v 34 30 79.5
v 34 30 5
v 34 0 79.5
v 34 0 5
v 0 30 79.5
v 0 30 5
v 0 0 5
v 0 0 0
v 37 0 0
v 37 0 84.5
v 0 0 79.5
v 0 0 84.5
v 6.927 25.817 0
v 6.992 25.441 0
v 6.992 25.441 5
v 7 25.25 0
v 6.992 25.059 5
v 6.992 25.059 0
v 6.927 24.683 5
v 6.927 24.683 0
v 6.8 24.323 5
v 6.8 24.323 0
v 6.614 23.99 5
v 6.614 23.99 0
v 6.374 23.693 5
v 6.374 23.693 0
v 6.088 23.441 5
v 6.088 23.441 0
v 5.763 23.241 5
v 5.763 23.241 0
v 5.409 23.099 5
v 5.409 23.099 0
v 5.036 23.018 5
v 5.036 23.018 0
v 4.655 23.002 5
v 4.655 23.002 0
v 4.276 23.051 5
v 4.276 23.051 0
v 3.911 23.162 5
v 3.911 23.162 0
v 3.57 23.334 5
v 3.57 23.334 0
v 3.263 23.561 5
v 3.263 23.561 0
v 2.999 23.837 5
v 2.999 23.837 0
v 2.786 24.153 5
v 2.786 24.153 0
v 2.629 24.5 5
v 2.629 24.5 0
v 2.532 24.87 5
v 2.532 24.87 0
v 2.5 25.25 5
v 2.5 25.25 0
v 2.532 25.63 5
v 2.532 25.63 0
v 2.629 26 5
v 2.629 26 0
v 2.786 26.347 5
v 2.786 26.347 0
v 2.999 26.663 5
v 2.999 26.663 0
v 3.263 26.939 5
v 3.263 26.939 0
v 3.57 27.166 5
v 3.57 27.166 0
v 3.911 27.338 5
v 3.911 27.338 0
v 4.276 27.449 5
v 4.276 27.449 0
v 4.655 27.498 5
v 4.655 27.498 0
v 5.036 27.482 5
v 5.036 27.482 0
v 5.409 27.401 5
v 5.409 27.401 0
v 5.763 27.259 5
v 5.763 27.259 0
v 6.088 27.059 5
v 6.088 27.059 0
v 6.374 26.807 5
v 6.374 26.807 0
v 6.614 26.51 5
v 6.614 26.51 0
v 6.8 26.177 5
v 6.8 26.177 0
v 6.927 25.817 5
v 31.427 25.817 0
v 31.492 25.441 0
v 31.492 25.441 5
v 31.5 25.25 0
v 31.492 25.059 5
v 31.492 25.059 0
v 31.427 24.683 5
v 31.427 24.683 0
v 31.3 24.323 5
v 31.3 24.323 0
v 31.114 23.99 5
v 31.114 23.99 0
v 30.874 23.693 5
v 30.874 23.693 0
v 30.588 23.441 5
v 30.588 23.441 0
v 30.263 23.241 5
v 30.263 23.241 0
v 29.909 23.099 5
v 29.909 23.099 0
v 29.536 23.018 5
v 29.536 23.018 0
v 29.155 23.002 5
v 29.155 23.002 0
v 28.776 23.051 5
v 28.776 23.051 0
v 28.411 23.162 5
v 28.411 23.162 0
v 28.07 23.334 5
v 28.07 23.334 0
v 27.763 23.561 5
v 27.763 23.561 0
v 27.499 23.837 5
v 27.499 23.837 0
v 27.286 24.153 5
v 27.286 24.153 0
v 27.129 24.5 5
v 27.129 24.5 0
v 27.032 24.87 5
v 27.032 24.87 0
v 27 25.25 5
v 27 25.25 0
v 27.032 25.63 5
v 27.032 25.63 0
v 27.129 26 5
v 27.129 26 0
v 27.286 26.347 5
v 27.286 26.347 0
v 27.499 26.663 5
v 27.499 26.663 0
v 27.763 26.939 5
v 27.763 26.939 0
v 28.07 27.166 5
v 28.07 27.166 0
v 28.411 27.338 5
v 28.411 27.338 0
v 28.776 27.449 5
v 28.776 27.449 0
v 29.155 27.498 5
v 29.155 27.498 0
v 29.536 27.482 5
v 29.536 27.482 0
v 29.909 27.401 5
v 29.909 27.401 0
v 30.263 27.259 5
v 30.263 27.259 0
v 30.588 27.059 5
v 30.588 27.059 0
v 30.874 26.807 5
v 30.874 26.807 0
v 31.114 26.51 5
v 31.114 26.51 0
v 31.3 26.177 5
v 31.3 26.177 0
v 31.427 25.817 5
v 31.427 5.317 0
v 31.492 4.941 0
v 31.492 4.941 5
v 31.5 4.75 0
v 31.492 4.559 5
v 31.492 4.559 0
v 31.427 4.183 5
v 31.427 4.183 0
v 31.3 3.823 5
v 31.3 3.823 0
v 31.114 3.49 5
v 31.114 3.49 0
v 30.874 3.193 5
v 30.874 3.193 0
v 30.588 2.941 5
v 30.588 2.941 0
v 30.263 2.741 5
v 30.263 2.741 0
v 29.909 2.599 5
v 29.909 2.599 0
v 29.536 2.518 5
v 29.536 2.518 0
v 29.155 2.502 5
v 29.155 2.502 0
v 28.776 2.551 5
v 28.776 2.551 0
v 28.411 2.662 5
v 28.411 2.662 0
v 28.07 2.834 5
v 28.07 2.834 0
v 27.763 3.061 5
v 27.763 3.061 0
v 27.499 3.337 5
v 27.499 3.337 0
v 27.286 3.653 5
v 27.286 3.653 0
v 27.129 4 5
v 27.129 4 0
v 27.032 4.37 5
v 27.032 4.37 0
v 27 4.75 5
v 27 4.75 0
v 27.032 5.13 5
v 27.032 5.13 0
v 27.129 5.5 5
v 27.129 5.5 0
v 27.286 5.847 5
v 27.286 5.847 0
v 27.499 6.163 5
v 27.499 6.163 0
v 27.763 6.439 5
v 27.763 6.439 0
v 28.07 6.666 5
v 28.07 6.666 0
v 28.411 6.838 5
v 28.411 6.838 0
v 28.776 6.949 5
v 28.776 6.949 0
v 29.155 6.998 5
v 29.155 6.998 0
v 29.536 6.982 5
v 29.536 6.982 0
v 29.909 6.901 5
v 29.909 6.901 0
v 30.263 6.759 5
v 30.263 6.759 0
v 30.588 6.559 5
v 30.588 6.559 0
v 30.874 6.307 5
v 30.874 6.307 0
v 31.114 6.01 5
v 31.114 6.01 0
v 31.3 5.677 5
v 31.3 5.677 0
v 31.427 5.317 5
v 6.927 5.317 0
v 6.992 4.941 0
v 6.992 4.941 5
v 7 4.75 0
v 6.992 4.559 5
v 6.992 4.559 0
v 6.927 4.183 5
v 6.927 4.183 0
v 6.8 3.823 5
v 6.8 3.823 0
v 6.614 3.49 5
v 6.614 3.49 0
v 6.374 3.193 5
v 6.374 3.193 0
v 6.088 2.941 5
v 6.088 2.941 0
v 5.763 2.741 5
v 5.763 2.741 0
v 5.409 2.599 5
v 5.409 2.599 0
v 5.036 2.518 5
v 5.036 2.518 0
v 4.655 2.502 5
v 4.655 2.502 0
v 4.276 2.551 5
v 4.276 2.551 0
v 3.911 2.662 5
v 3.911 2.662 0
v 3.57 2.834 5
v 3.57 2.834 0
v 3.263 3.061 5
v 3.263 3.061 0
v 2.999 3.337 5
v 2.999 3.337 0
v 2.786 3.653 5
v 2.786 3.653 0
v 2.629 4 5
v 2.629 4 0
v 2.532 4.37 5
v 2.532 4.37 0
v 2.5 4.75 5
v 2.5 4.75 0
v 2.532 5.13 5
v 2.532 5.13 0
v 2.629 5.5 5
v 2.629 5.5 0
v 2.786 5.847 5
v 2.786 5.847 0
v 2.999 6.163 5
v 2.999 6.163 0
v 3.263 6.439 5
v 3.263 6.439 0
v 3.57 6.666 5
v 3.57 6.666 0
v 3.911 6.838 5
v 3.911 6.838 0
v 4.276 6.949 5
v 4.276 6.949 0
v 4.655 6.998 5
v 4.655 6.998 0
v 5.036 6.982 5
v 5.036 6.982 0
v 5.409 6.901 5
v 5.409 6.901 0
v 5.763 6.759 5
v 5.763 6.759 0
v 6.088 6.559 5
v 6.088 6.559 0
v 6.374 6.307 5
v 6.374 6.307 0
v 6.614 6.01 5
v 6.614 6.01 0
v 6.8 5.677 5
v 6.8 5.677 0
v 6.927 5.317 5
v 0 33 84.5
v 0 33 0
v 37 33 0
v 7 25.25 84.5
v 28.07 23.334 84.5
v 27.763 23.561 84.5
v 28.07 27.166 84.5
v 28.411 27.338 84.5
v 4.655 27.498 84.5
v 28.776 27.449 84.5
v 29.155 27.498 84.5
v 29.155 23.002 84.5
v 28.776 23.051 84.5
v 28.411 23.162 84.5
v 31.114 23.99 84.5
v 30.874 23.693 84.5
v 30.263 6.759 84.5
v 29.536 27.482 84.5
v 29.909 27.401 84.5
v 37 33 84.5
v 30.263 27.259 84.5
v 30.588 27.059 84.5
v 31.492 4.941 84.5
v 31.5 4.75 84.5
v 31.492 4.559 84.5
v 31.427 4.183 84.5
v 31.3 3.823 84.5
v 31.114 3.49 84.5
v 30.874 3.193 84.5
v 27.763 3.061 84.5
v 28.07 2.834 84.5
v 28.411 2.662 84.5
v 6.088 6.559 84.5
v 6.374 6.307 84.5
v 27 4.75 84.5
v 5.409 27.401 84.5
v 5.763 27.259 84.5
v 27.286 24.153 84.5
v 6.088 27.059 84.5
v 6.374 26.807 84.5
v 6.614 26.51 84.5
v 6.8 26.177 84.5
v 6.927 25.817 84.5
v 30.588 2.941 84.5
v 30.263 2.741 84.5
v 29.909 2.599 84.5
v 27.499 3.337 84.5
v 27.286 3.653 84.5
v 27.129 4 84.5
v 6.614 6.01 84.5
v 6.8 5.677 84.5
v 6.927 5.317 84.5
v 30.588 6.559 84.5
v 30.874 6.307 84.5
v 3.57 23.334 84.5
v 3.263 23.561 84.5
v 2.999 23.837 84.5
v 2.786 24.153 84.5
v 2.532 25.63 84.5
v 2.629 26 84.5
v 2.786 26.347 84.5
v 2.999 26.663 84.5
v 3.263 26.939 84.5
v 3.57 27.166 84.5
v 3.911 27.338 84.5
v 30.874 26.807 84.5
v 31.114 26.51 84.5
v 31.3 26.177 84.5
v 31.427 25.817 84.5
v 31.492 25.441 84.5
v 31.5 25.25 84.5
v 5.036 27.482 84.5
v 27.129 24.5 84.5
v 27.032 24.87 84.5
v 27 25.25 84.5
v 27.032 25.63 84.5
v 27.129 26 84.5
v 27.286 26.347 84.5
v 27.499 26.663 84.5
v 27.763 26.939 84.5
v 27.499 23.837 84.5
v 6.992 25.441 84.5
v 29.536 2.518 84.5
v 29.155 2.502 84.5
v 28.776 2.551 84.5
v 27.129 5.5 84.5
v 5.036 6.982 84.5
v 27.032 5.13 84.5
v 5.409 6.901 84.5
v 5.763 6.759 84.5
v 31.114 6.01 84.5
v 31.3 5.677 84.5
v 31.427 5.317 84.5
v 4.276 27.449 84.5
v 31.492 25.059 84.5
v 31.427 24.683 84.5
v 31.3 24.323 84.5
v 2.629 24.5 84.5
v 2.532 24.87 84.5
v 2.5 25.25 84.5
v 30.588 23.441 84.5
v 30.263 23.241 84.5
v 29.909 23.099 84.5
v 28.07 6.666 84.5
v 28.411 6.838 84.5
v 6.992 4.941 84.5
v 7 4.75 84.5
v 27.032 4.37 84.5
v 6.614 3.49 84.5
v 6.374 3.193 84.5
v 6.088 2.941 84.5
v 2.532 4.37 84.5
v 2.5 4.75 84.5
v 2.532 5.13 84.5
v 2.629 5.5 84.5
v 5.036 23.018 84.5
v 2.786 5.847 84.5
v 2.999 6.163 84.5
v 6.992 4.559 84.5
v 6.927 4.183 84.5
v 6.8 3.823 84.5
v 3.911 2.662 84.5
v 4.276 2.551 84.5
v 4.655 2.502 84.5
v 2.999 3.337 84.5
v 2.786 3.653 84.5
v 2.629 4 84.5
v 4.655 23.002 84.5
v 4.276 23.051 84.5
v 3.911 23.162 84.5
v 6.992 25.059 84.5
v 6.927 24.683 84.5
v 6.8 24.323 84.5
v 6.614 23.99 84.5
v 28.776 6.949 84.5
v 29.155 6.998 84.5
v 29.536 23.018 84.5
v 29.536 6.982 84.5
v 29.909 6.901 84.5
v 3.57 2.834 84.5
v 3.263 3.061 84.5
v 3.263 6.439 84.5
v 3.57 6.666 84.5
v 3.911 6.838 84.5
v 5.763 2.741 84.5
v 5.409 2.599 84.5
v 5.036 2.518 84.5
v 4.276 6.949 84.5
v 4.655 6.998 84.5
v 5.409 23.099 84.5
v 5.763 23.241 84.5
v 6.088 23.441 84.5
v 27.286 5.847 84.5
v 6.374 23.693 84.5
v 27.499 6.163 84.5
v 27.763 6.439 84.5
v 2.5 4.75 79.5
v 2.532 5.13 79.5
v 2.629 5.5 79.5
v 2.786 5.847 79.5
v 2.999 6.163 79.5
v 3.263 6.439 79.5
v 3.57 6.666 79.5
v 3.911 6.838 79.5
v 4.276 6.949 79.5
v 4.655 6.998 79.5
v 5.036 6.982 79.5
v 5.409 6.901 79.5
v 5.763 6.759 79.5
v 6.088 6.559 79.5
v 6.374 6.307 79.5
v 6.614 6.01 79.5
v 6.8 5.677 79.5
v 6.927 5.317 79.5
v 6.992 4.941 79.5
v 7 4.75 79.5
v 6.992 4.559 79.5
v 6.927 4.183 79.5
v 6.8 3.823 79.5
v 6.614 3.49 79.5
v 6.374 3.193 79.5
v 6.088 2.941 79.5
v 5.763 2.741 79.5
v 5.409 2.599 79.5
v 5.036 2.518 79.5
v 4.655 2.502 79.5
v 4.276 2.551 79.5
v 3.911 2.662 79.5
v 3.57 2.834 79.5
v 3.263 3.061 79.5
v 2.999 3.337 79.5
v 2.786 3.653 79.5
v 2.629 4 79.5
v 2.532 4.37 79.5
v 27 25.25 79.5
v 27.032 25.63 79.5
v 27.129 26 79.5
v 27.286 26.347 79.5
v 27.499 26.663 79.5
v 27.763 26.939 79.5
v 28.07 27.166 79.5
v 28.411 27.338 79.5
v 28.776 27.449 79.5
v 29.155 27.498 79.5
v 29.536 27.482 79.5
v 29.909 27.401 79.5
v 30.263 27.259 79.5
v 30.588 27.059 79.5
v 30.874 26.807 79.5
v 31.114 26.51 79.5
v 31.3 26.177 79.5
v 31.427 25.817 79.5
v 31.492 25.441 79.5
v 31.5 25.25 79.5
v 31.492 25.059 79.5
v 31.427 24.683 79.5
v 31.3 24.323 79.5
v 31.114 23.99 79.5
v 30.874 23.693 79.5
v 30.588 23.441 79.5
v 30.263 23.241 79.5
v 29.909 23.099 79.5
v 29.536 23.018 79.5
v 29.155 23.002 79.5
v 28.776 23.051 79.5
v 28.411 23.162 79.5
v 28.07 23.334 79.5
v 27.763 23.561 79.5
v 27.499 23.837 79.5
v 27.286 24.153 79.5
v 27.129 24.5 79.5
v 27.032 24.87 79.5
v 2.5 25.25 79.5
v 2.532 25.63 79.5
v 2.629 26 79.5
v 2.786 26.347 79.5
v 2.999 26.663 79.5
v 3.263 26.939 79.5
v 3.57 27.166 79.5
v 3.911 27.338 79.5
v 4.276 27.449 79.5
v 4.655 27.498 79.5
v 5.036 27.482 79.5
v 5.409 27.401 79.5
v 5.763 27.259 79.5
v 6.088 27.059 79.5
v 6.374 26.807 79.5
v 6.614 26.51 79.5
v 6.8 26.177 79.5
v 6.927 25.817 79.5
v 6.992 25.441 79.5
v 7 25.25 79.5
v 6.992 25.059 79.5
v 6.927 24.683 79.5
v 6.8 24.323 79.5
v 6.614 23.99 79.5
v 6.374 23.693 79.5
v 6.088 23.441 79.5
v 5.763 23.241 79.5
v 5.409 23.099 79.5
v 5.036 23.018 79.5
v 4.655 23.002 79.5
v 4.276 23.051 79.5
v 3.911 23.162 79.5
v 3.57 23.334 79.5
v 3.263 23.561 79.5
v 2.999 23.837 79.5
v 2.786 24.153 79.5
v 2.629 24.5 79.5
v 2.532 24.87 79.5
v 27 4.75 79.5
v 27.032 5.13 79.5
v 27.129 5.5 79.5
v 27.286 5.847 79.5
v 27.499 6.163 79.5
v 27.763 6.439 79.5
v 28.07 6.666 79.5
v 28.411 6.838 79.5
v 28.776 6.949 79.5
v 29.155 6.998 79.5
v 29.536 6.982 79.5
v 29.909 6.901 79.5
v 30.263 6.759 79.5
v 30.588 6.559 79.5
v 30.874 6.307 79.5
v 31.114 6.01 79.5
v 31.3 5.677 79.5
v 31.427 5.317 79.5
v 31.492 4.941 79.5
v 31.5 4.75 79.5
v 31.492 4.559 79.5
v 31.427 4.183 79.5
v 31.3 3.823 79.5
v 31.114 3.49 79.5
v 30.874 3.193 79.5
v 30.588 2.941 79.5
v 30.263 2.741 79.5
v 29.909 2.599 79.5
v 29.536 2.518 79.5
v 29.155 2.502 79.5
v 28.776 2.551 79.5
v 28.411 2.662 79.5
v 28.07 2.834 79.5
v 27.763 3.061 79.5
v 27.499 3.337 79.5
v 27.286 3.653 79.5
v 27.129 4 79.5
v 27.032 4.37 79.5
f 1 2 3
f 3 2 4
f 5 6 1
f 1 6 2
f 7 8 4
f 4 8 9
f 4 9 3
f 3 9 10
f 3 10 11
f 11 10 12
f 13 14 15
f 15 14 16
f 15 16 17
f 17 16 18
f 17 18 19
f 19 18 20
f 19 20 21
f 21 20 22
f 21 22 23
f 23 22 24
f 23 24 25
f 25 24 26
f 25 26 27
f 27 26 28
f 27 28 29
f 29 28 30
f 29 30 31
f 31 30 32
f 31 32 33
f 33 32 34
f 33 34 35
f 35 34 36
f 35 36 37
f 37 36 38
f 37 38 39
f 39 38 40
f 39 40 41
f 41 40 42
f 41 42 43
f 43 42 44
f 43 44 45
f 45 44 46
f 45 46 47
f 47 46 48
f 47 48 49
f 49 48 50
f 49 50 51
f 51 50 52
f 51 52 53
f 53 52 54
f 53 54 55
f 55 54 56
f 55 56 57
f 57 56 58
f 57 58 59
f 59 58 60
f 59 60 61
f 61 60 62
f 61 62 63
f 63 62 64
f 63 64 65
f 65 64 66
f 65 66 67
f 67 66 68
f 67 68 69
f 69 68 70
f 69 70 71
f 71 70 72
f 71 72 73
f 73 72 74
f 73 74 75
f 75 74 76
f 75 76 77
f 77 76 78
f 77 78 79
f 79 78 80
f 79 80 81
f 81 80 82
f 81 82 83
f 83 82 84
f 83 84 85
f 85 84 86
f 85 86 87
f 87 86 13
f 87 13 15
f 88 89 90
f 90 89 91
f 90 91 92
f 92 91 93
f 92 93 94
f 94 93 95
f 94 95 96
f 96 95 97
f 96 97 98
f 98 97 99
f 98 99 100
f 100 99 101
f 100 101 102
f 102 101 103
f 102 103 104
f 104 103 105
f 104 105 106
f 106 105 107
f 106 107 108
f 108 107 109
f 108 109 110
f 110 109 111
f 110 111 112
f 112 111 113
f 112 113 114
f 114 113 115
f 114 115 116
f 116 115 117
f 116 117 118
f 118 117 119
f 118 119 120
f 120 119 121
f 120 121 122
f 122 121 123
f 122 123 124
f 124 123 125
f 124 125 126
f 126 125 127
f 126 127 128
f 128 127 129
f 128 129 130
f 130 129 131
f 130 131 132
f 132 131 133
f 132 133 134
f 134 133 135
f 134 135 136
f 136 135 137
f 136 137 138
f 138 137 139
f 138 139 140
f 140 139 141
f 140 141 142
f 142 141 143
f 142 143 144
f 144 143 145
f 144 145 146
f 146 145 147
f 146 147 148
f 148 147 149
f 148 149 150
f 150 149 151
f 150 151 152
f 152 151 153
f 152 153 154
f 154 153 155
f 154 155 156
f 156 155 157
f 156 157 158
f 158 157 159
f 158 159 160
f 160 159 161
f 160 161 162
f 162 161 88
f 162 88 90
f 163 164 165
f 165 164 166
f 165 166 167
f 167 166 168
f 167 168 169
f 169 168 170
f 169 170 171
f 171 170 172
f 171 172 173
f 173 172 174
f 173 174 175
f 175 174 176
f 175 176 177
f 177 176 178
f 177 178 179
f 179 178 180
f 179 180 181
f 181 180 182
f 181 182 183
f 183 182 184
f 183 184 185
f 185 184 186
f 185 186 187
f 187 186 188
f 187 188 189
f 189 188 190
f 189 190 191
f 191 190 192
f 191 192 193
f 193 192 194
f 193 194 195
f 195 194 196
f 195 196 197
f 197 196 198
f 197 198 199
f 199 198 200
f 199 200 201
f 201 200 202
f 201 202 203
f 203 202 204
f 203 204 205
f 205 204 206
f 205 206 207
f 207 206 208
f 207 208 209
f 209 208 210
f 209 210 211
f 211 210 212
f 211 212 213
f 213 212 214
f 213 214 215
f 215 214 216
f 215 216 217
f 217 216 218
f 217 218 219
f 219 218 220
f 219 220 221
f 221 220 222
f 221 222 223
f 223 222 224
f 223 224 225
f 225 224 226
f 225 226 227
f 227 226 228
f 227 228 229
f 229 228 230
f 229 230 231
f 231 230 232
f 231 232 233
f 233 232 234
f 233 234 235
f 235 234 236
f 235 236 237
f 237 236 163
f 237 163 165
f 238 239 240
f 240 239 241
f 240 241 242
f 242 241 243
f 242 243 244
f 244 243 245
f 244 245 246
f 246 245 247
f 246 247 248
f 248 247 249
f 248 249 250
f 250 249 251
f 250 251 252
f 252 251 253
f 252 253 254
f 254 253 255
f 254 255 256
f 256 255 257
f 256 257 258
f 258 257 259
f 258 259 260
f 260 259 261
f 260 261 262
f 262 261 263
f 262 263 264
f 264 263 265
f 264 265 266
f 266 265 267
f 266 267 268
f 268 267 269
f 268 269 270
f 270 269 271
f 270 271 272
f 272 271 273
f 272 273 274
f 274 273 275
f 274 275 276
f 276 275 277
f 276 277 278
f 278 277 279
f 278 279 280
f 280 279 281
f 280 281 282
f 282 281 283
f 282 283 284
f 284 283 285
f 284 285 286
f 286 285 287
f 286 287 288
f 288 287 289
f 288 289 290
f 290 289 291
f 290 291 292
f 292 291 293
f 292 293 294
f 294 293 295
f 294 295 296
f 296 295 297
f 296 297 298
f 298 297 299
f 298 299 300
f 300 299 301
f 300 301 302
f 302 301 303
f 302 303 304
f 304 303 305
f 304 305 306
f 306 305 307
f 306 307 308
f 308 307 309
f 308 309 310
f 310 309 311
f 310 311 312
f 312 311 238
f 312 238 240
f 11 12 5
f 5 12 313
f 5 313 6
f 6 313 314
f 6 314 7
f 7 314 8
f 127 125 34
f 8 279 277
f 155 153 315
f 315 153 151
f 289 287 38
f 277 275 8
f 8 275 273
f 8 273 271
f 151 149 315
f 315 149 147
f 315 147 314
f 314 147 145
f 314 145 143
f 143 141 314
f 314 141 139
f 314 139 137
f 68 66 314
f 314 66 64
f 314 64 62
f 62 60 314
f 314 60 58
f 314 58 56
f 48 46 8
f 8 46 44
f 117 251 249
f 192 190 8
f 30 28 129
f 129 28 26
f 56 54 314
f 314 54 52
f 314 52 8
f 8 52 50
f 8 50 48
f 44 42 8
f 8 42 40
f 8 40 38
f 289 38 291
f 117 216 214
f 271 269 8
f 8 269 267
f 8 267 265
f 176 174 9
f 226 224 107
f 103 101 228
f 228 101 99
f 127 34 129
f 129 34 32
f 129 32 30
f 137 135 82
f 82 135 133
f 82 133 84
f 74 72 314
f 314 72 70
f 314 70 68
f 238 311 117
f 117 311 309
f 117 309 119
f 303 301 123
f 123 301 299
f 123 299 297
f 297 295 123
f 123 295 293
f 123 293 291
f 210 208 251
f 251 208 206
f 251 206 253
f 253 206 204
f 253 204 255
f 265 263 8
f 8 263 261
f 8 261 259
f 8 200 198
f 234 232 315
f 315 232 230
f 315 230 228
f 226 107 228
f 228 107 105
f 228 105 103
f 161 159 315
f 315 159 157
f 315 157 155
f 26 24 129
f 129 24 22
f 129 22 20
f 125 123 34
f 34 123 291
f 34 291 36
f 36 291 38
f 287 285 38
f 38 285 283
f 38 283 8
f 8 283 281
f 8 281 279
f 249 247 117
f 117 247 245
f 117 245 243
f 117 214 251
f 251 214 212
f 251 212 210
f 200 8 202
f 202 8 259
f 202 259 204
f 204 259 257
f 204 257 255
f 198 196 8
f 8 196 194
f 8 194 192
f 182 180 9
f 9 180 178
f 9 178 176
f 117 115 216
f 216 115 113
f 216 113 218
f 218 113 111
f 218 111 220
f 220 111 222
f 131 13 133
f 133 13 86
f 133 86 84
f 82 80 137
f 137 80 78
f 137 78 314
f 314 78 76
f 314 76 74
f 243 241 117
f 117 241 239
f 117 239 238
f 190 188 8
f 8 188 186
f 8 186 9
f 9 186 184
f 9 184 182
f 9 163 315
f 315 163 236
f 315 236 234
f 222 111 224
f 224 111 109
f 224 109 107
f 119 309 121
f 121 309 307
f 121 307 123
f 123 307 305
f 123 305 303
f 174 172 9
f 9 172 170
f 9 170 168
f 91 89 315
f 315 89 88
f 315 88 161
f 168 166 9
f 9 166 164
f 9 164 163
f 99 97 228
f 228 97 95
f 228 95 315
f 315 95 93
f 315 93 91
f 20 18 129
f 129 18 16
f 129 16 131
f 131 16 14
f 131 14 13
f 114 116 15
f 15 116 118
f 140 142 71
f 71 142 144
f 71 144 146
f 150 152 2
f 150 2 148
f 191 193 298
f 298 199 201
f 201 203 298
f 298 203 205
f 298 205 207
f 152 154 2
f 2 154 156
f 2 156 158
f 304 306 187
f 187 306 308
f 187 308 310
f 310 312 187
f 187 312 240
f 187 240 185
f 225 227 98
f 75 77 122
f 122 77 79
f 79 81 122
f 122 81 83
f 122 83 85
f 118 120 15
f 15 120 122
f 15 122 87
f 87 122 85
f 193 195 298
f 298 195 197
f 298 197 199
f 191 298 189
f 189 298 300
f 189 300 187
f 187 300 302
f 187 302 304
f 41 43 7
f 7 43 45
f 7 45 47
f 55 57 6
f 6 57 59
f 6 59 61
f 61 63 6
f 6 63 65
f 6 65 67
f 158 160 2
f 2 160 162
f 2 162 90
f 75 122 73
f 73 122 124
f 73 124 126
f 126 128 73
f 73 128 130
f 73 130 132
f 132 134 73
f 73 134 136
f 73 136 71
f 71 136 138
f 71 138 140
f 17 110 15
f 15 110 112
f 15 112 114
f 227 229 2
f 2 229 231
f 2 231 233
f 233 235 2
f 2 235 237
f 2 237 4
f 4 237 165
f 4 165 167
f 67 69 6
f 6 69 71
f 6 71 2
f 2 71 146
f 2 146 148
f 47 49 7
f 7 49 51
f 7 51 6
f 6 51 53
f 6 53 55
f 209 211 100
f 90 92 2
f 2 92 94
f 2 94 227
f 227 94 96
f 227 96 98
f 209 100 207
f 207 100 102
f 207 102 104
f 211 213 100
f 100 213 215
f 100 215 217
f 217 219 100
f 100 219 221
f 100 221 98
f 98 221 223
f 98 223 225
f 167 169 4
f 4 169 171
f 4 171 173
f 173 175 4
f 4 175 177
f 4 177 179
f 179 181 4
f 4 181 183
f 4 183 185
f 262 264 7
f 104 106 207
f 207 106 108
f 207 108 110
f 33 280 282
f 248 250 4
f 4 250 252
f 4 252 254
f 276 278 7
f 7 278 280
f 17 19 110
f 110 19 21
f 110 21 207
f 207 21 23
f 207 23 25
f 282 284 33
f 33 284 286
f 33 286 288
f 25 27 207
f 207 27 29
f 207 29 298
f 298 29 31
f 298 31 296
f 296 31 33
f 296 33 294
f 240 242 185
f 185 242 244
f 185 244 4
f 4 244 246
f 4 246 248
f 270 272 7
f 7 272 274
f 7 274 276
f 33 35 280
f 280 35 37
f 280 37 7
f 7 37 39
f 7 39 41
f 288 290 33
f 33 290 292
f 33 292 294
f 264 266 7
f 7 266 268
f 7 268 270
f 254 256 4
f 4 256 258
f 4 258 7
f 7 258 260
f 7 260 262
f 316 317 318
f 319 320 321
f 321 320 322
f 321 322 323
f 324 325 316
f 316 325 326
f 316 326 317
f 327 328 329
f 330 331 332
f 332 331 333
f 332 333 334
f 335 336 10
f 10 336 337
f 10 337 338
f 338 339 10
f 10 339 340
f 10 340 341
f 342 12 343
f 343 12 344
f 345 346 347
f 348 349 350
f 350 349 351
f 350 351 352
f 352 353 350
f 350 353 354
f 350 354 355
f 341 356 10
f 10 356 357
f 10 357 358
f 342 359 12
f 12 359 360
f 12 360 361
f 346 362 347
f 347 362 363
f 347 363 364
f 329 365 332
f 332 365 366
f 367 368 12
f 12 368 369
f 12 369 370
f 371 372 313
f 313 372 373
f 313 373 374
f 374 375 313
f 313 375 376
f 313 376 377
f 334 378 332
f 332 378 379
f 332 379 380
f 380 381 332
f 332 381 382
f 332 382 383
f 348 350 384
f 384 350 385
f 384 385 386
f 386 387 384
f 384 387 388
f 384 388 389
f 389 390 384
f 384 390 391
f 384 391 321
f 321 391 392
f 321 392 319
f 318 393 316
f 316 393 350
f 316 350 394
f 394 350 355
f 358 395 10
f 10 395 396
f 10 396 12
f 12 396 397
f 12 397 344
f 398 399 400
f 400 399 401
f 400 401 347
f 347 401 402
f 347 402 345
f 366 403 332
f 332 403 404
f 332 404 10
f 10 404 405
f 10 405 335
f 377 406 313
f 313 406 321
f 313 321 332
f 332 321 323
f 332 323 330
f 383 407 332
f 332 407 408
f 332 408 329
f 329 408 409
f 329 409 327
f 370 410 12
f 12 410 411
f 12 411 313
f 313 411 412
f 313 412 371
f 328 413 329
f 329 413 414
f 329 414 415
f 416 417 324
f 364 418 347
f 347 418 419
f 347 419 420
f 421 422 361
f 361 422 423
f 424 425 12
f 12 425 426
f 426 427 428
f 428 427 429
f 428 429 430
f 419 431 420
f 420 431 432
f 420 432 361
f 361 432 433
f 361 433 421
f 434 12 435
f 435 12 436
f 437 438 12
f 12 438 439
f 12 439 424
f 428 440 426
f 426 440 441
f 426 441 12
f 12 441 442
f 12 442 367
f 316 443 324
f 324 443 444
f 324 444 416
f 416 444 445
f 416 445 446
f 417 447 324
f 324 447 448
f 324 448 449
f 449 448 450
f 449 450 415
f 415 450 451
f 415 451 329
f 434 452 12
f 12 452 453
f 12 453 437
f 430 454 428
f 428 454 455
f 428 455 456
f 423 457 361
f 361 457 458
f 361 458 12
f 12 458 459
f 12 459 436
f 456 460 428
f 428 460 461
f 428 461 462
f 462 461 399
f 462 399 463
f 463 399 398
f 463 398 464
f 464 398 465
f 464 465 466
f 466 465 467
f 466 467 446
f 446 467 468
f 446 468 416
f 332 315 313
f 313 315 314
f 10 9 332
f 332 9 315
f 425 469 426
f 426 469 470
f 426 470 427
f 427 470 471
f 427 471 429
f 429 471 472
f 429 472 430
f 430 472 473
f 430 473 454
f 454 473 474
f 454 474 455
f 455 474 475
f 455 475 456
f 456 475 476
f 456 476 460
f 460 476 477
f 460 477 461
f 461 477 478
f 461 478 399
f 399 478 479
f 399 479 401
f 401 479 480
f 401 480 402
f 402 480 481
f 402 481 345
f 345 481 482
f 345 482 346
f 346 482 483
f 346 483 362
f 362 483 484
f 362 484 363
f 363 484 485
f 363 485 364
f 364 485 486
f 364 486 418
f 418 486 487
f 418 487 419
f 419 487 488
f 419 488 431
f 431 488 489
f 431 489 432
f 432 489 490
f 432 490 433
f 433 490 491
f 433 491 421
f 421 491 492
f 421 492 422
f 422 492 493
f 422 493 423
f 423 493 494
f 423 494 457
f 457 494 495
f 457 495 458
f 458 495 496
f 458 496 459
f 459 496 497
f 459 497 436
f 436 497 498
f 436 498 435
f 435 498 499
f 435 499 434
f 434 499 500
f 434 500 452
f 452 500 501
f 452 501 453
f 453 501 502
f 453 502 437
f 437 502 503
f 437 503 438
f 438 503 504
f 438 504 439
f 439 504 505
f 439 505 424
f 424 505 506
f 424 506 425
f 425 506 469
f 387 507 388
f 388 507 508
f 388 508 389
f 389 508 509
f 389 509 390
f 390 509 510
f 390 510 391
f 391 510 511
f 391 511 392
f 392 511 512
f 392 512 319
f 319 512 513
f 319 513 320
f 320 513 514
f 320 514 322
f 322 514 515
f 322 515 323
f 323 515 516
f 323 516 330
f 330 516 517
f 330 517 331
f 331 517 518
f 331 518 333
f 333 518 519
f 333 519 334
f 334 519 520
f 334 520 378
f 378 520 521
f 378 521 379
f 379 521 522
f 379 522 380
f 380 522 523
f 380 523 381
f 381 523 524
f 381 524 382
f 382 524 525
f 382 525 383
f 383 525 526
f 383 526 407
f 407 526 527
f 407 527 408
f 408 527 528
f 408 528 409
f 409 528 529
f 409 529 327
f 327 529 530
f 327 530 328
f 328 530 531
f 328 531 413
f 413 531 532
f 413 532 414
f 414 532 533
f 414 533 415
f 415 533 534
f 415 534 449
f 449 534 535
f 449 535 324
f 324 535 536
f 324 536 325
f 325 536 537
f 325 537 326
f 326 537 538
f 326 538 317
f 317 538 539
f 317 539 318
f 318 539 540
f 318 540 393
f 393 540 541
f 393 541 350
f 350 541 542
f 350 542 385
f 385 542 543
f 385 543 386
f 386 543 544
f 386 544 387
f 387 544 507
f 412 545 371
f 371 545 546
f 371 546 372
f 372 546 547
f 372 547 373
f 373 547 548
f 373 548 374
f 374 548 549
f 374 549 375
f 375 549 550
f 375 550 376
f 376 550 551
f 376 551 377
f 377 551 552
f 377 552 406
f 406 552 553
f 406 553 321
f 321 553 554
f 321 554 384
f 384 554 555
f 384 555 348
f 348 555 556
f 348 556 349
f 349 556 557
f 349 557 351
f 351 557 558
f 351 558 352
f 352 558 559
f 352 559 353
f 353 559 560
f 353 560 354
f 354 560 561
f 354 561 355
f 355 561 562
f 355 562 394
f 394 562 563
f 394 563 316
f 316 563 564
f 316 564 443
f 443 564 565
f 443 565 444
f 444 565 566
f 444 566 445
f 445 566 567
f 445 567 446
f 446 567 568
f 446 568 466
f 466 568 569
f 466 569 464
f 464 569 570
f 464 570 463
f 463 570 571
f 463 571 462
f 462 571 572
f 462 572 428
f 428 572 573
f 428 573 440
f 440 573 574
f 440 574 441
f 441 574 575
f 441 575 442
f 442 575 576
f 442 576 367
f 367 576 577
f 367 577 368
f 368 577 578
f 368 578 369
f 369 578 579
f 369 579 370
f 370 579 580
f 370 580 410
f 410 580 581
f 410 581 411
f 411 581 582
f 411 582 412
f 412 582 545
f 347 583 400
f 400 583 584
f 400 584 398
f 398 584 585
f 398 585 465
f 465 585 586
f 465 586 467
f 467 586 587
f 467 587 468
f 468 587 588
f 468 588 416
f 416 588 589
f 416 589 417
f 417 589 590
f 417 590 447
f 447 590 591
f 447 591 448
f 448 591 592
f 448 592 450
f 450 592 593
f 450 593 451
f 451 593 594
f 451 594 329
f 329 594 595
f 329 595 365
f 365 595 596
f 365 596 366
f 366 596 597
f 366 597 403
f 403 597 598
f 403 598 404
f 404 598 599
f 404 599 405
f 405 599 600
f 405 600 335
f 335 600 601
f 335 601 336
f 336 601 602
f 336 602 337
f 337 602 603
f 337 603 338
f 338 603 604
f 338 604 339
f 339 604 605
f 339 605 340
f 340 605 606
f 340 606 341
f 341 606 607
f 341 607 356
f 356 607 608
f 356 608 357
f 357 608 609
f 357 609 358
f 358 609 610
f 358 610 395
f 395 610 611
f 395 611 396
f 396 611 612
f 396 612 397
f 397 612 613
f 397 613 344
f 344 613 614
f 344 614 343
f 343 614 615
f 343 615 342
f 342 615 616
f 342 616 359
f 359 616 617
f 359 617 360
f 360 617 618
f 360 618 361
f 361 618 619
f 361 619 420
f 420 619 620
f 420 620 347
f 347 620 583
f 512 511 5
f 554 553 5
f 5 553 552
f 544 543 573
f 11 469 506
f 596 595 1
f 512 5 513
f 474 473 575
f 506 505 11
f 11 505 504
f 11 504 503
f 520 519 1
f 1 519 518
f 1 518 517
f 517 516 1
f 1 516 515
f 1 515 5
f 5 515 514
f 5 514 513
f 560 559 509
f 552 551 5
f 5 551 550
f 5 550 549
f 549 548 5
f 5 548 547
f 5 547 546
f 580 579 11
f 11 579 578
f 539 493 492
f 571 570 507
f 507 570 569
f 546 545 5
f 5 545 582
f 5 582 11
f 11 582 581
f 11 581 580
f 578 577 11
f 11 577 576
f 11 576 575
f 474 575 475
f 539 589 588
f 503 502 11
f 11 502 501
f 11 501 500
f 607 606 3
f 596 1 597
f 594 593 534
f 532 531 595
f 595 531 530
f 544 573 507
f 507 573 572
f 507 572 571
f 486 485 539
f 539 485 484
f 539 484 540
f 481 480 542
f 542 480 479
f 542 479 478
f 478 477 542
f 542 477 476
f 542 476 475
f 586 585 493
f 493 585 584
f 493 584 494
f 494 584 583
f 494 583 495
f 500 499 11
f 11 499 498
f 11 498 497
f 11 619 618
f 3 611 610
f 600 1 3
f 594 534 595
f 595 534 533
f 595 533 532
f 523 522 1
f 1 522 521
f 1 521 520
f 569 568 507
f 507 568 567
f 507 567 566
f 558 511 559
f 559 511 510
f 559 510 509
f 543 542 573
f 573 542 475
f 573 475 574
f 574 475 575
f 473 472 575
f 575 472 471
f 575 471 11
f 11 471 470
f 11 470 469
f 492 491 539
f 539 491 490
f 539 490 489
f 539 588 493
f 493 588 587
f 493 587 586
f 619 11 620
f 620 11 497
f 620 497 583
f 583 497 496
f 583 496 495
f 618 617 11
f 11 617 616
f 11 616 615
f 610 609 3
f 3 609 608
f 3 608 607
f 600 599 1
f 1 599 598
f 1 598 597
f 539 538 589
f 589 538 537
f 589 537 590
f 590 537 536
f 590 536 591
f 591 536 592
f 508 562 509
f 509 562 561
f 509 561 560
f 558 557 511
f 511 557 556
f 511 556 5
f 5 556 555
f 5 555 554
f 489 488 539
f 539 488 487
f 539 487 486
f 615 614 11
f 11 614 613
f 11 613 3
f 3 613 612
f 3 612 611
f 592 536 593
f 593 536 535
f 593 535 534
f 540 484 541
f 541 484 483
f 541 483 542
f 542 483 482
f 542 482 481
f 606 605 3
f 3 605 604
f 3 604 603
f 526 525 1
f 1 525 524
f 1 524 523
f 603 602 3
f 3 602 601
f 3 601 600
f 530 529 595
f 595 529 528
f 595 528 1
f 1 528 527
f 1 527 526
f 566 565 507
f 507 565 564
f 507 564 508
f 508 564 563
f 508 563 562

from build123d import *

# Parameters (mm, degrees)
SKETCH1_W           = 34
SKETCH1_H           = 30
SKETCH1_R           = 2.25
BOSS_EXTRUDE1_DEPTH = 5
SKETCH2_W           = 5
SKETCH2_H           = 30
BOSS_EXTRUDE2_DEPTH = 15
SKETCH4_W           = 5
SKETCH4_H           = 30
BOSS_EXTRUDE3_DEPTH = 25
SKETCH5_R           = 2.5
CUT_EXTRUDE1_DEPTH  = 25
SKETCH6_W           = 15
SKETCH6_H           = 30
CUT_EXTRUDE2_DEPTH  = 66
SKETCH7_W           = 34
SKETCH7_H           = 30
SKETCH7_R           = 2.25
BOSS_EXTRUDE4_DEPTH = 79.5
SKETCH8_W           = 34
SKETCH8_H           = 74.5
CUT_EXTRUDE3_DEPTH  = 30
BOSS_EXTRUDE6_DEPTH = 84.5


with BuildPart() as part:
    # Sketch1 → Boss-Extrude1 (new body)
    with BuildSketch(Plane.XY):
        with Locations((17, 15)):
            Rectangle(SKETCH1_W, SKETCH1_H)
        with Locations((4.75, 25.25)):
            Circle(SKETCH1_R, mode=Mode.SUBTRACT)
        with Locations((29.25, 25.25)):
            Circle(SKETCH1_R, mode=Mode.SUBTRACT)
        with Locations((29.25, 4.75)):
            Circle(SKETCH1_R, mode=Mode.SUBTRACT)
        with Locations((4.75, 4.75)):
            Circle(SKETCH1_R, mode=Mode.SUBTRACT)
    extrude(amount=BOSS_EXTRUDE1_DEPTH)

    # Sketch2 → Boss-Extrude2 (add)
    with BuildSketch(Plane.ZY):
        with Locations((2.5, 15)):
            Rectangle(SKETCH2_W, SKETCH2_H)
    extrude(amount=BOSS_EXTRUDE2_DEPTH)

    # Sketch4 → Boss-Extrude3 (add)
    with BuildSketch(Plane.XY.offset(5)):
        with Locations((-12.5, 15)):
            Rectangle(SKETCH4_W, SKETCH4_H)
    extrude(amount=BOSS_EXTRUDE3_DEPTH)

    # Sketch5 → Cut-Extrude1 (cut)
    with BuildSketch(Plane(origin=(-10, 0, 0), x_dir=(0, 0, -1), z_dir=(1, 0, 0))):
        with Locations((-24, 15)):
            Circle(SKETCH5_R)
        with Locations((-10, 15)):
            Circle(SKETCH5_R)
    extrude(amount=-CUT_EXTRUDE1_DEPTH, mode=Mode.SUBTRACT)

    # Sketch6 → Cut-Extrude2 (cut)
    with BuildSketch(Plane(origin=(0, 30, 0), x_dir=(1, 0, 0), z_dir=(0, 1, 0))):
        with Locations((-7.5, -15)):
            Rectangle(SKETCH6_W, SKETCH6_H)
    extrude(amount=-CUT_EXTRUDE2_DEPTH, mode=Mode.SUBTRACT)

    # Sketch7 → Boss-Extrude4 (add)
    with BuildSketch(Plane.XY.offset(5)):
        with Locations((17, 15)):
            Rectangle(SKETCH7_W, SKETCH7_H)
        with Locations((4.75, 25.25)):
            Circle(SKETCH7_R, mode=Mode.SUBTRACT)
        with Locations((29.25, 25.25)):
            Circle(SKETCH7_R, mode=Mode.SUBTRACT)
        with Locations((29.25, 4.75)):
            Circle(SKETCH7_R, mode=Mode.SUBTRACT)
        with Locations((4.75, 4.75)):
            Circle(SKETCH7_R, mode=Mode.SUBTRACT)
    extrude(amount=BOSS_EXTRUDE4_DEPTH)

    # Sketch8 → Cut-Extrude3 (cut)
    with BuildSketch(Plane(origin=(0, 30, 0), x_dir=(1, 0, 0), z_dir=(0, 1, 0))):
        with Locations((17, -42.25)):
            Rectangle(SKETCH8_W, SKETCH8_H)
    extrude(amount=-CUT_EXTRUDE3_DEPTH, mode=Mode.SUBTRACT)


with BuildPart() as cut_extrude3_piece_1:
    # of the separate pieces the step leaves, piece 1, a body of its own (cut_extrude3_pieces)
    add(part.part.solids().sort_by_distance((34, 0, 0))[0])



with BuildPart() as cut_extrude3_piece_2:
    # of the separate pieces the step leaves, piece 2, a body of its own (cut_extrude3_pieces)
    add(part.part.solids().sort_by_distance((34, 0, 79.5))[0])


with BuildPart() as cut_extrude3_piece_1_1:
    add(cut_extrude3_piece_1.part)

    add(cut_extrude3_piece_2.part)  # Boss-Extrude6 merges Cut-Extrude3 piece 2
    # Sketch11 → Boss-Extrude6 (add)
    with BuildSketch(Plane(origin=(0, 0, 0), x_dir=(-1, 0, 0), z_dir=(0, 0, -1))):
        Polygon((0, 30), (0, 33), (-37, 33), (-37, 0), (-34, 0), (-34, 30), align=None)
    extrude(amount=-BOSS_EXTRUDE6_DEPTH)


solid = cut_extrude3_piece_1_1.part
